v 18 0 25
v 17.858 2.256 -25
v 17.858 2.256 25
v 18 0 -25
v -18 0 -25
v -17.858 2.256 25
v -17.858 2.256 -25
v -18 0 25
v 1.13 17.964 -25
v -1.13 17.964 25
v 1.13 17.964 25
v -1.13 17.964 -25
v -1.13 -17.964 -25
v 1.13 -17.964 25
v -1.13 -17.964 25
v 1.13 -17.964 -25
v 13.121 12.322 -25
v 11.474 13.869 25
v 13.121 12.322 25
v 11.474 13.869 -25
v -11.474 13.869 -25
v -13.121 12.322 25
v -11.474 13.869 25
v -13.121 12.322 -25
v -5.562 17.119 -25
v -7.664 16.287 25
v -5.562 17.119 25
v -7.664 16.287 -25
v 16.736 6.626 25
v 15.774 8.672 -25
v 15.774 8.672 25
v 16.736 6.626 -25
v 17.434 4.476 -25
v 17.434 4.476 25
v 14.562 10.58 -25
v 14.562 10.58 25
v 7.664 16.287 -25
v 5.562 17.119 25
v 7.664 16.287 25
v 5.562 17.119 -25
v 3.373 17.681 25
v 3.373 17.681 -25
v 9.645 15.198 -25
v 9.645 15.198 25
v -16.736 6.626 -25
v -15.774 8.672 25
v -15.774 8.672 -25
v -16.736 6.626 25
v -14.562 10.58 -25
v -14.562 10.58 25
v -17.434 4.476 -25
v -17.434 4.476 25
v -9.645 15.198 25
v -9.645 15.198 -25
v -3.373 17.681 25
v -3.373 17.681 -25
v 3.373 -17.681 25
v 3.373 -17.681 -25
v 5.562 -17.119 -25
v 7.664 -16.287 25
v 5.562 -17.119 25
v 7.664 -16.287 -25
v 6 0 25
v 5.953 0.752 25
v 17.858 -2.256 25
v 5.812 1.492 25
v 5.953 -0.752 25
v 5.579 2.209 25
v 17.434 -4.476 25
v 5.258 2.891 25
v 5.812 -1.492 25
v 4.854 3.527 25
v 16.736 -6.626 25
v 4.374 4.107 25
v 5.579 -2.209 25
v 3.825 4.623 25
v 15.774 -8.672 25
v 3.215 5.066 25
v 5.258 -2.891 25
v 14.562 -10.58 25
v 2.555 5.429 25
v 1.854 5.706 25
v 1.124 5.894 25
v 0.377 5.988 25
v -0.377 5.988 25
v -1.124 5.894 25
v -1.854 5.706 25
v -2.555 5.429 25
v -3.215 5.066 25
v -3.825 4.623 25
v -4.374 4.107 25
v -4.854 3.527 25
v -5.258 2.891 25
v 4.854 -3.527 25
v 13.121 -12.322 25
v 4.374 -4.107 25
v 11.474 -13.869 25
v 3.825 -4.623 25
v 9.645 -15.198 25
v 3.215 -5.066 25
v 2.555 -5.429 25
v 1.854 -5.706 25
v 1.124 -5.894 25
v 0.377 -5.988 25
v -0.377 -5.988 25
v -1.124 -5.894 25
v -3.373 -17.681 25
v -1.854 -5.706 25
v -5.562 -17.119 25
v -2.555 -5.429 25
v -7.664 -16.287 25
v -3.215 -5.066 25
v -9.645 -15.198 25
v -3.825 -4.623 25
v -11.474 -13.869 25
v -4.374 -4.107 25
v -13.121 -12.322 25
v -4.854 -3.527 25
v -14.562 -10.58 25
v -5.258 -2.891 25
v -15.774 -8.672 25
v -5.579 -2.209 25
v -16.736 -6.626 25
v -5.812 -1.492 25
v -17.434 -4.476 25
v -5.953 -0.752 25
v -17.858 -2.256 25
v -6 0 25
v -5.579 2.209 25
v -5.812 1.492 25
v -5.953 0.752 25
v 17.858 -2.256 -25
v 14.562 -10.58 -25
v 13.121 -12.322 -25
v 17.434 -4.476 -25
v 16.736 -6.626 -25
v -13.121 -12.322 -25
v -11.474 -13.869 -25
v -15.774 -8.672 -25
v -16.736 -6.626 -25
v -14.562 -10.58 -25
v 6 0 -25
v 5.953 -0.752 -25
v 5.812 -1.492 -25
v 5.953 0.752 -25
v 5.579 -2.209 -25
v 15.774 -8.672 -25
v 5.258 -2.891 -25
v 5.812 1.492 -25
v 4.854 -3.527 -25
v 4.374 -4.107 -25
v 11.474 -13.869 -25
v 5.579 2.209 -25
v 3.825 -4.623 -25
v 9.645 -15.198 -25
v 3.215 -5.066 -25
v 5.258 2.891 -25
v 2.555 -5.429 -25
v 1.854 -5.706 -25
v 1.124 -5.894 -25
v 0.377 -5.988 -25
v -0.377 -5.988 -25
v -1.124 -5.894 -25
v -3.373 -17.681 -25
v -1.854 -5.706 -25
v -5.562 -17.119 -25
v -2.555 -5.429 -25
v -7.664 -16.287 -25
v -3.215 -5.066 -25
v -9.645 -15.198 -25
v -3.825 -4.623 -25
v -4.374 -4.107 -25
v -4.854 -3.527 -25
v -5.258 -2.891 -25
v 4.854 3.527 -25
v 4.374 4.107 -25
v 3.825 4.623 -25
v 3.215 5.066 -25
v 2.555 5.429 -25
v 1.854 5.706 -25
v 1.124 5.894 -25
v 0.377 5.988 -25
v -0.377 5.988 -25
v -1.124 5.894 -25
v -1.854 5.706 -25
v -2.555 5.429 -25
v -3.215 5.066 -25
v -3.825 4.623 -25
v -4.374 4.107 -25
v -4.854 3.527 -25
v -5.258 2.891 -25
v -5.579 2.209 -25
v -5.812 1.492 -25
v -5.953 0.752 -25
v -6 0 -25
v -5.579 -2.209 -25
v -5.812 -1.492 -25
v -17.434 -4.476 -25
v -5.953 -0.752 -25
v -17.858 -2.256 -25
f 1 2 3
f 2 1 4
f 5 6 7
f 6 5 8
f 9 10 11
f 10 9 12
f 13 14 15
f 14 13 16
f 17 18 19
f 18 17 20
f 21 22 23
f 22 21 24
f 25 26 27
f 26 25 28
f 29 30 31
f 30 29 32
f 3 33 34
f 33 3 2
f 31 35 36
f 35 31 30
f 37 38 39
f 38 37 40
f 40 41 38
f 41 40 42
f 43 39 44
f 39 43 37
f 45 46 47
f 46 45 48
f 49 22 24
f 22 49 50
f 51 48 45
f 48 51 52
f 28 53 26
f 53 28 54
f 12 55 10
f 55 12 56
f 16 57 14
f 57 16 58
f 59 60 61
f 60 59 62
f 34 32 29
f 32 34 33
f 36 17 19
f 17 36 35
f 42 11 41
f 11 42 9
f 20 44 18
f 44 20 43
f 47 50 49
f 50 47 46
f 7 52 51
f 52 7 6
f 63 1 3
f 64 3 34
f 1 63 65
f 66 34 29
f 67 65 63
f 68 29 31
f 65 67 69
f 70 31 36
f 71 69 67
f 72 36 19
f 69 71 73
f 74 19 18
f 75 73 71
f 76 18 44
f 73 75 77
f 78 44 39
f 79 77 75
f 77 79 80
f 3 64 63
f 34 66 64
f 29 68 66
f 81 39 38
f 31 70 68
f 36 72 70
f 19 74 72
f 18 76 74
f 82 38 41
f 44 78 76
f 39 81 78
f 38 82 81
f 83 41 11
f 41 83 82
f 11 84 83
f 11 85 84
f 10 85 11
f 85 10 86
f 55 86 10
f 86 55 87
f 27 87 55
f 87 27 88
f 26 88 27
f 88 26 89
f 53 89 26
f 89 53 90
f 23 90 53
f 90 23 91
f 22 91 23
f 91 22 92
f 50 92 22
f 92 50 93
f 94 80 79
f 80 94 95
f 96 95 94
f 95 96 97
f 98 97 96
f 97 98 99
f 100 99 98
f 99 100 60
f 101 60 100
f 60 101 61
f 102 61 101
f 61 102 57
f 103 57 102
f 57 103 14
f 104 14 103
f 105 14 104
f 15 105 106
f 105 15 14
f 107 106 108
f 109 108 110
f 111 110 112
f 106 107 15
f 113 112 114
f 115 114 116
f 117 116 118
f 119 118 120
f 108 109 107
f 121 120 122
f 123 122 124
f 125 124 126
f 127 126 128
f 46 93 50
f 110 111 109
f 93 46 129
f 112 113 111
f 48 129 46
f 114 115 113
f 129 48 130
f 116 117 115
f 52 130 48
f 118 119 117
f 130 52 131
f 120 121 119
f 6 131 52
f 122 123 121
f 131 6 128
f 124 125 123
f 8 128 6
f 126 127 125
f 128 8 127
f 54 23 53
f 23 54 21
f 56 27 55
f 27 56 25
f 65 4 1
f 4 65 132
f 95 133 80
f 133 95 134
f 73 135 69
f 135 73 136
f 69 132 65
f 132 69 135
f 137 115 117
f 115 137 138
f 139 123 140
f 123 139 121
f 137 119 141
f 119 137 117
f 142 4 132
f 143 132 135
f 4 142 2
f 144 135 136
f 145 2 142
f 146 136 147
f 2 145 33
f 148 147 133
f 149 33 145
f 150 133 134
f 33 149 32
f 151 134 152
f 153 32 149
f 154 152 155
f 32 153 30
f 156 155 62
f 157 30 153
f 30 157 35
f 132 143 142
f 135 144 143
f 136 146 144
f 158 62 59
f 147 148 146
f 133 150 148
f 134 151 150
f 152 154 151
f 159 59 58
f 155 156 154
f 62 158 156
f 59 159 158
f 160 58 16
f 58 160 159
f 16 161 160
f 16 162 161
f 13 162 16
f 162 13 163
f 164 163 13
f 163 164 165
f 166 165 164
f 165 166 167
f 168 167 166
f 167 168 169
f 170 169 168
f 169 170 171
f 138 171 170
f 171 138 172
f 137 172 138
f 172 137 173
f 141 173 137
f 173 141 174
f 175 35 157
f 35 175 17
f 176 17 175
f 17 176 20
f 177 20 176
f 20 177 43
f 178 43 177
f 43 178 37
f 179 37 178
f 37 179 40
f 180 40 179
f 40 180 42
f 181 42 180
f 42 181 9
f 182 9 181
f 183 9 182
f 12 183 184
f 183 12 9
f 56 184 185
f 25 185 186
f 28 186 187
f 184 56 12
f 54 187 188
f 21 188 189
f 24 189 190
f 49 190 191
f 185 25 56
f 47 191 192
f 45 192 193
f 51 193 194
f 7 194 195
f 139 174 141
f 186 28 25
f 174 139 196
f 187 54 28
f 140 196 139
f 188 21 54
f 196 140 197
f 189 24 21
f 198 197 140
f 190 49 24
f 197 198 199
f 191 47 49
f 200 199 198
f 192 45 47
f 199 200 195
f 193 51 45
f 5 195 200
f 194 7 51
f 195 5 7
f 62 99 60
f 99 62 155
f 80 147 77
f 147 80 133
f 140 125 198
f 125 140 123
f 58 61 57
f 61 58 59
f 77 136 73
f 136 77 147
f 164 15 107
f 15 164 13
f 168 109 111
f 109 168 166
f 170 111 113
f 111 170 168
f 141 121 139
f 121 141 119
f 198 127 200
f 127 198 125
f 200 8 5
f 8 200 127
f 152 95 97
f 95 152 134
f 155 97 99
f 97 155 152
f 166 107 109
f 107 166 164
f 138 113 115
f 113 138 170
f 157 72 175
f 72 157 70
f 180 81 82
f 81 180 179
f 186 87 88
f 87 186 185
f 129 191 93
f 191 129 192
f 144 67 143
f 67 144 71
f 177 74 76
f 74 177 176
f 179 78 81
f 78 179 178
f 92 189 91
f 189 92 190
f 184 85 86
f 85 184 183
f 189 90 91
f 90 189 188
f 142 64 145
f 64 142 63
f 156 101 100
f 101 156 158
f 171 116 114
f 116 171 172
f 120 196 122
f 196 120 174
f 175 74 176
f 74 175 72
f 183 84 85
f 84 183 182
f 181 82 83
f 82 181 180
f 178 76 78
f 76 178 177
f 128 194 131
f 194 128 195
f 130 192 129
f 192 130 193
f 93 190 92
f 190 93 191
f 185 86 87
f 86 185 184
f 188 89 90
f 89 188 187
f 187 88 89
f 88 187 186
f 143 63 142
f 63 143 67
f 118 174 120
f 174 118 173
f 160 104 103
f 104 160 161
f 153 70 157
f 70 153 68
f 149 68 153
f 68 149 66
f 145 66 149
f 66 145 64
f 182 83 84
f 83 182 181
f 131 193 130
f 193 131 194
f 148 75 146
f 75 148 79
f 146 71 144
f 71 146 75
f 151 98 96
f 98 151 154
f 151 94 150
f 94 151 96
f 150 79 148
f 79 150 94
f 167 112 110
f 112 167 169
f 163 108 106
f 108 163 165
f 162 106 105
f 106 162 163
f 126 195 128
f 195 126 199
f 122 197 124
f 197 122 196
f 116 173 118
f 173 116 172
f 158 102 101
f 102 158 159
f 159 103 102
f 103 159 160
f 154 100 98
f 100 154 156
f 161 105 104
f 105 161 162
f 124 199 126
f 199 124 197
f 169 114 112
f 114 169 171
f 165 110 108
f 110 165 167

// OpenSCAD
$fn = 50;


difference() {
	union() {
		translate(v = [0, 0, -25.0000000000]) {
			cylinder(h = 50, r = 18.0000000000);
		}
	}
	union() {
		translate(v = [0, 0, -100.0000000000]) {
			cylinder(h = 200, r = 6);
		}
	}
}
